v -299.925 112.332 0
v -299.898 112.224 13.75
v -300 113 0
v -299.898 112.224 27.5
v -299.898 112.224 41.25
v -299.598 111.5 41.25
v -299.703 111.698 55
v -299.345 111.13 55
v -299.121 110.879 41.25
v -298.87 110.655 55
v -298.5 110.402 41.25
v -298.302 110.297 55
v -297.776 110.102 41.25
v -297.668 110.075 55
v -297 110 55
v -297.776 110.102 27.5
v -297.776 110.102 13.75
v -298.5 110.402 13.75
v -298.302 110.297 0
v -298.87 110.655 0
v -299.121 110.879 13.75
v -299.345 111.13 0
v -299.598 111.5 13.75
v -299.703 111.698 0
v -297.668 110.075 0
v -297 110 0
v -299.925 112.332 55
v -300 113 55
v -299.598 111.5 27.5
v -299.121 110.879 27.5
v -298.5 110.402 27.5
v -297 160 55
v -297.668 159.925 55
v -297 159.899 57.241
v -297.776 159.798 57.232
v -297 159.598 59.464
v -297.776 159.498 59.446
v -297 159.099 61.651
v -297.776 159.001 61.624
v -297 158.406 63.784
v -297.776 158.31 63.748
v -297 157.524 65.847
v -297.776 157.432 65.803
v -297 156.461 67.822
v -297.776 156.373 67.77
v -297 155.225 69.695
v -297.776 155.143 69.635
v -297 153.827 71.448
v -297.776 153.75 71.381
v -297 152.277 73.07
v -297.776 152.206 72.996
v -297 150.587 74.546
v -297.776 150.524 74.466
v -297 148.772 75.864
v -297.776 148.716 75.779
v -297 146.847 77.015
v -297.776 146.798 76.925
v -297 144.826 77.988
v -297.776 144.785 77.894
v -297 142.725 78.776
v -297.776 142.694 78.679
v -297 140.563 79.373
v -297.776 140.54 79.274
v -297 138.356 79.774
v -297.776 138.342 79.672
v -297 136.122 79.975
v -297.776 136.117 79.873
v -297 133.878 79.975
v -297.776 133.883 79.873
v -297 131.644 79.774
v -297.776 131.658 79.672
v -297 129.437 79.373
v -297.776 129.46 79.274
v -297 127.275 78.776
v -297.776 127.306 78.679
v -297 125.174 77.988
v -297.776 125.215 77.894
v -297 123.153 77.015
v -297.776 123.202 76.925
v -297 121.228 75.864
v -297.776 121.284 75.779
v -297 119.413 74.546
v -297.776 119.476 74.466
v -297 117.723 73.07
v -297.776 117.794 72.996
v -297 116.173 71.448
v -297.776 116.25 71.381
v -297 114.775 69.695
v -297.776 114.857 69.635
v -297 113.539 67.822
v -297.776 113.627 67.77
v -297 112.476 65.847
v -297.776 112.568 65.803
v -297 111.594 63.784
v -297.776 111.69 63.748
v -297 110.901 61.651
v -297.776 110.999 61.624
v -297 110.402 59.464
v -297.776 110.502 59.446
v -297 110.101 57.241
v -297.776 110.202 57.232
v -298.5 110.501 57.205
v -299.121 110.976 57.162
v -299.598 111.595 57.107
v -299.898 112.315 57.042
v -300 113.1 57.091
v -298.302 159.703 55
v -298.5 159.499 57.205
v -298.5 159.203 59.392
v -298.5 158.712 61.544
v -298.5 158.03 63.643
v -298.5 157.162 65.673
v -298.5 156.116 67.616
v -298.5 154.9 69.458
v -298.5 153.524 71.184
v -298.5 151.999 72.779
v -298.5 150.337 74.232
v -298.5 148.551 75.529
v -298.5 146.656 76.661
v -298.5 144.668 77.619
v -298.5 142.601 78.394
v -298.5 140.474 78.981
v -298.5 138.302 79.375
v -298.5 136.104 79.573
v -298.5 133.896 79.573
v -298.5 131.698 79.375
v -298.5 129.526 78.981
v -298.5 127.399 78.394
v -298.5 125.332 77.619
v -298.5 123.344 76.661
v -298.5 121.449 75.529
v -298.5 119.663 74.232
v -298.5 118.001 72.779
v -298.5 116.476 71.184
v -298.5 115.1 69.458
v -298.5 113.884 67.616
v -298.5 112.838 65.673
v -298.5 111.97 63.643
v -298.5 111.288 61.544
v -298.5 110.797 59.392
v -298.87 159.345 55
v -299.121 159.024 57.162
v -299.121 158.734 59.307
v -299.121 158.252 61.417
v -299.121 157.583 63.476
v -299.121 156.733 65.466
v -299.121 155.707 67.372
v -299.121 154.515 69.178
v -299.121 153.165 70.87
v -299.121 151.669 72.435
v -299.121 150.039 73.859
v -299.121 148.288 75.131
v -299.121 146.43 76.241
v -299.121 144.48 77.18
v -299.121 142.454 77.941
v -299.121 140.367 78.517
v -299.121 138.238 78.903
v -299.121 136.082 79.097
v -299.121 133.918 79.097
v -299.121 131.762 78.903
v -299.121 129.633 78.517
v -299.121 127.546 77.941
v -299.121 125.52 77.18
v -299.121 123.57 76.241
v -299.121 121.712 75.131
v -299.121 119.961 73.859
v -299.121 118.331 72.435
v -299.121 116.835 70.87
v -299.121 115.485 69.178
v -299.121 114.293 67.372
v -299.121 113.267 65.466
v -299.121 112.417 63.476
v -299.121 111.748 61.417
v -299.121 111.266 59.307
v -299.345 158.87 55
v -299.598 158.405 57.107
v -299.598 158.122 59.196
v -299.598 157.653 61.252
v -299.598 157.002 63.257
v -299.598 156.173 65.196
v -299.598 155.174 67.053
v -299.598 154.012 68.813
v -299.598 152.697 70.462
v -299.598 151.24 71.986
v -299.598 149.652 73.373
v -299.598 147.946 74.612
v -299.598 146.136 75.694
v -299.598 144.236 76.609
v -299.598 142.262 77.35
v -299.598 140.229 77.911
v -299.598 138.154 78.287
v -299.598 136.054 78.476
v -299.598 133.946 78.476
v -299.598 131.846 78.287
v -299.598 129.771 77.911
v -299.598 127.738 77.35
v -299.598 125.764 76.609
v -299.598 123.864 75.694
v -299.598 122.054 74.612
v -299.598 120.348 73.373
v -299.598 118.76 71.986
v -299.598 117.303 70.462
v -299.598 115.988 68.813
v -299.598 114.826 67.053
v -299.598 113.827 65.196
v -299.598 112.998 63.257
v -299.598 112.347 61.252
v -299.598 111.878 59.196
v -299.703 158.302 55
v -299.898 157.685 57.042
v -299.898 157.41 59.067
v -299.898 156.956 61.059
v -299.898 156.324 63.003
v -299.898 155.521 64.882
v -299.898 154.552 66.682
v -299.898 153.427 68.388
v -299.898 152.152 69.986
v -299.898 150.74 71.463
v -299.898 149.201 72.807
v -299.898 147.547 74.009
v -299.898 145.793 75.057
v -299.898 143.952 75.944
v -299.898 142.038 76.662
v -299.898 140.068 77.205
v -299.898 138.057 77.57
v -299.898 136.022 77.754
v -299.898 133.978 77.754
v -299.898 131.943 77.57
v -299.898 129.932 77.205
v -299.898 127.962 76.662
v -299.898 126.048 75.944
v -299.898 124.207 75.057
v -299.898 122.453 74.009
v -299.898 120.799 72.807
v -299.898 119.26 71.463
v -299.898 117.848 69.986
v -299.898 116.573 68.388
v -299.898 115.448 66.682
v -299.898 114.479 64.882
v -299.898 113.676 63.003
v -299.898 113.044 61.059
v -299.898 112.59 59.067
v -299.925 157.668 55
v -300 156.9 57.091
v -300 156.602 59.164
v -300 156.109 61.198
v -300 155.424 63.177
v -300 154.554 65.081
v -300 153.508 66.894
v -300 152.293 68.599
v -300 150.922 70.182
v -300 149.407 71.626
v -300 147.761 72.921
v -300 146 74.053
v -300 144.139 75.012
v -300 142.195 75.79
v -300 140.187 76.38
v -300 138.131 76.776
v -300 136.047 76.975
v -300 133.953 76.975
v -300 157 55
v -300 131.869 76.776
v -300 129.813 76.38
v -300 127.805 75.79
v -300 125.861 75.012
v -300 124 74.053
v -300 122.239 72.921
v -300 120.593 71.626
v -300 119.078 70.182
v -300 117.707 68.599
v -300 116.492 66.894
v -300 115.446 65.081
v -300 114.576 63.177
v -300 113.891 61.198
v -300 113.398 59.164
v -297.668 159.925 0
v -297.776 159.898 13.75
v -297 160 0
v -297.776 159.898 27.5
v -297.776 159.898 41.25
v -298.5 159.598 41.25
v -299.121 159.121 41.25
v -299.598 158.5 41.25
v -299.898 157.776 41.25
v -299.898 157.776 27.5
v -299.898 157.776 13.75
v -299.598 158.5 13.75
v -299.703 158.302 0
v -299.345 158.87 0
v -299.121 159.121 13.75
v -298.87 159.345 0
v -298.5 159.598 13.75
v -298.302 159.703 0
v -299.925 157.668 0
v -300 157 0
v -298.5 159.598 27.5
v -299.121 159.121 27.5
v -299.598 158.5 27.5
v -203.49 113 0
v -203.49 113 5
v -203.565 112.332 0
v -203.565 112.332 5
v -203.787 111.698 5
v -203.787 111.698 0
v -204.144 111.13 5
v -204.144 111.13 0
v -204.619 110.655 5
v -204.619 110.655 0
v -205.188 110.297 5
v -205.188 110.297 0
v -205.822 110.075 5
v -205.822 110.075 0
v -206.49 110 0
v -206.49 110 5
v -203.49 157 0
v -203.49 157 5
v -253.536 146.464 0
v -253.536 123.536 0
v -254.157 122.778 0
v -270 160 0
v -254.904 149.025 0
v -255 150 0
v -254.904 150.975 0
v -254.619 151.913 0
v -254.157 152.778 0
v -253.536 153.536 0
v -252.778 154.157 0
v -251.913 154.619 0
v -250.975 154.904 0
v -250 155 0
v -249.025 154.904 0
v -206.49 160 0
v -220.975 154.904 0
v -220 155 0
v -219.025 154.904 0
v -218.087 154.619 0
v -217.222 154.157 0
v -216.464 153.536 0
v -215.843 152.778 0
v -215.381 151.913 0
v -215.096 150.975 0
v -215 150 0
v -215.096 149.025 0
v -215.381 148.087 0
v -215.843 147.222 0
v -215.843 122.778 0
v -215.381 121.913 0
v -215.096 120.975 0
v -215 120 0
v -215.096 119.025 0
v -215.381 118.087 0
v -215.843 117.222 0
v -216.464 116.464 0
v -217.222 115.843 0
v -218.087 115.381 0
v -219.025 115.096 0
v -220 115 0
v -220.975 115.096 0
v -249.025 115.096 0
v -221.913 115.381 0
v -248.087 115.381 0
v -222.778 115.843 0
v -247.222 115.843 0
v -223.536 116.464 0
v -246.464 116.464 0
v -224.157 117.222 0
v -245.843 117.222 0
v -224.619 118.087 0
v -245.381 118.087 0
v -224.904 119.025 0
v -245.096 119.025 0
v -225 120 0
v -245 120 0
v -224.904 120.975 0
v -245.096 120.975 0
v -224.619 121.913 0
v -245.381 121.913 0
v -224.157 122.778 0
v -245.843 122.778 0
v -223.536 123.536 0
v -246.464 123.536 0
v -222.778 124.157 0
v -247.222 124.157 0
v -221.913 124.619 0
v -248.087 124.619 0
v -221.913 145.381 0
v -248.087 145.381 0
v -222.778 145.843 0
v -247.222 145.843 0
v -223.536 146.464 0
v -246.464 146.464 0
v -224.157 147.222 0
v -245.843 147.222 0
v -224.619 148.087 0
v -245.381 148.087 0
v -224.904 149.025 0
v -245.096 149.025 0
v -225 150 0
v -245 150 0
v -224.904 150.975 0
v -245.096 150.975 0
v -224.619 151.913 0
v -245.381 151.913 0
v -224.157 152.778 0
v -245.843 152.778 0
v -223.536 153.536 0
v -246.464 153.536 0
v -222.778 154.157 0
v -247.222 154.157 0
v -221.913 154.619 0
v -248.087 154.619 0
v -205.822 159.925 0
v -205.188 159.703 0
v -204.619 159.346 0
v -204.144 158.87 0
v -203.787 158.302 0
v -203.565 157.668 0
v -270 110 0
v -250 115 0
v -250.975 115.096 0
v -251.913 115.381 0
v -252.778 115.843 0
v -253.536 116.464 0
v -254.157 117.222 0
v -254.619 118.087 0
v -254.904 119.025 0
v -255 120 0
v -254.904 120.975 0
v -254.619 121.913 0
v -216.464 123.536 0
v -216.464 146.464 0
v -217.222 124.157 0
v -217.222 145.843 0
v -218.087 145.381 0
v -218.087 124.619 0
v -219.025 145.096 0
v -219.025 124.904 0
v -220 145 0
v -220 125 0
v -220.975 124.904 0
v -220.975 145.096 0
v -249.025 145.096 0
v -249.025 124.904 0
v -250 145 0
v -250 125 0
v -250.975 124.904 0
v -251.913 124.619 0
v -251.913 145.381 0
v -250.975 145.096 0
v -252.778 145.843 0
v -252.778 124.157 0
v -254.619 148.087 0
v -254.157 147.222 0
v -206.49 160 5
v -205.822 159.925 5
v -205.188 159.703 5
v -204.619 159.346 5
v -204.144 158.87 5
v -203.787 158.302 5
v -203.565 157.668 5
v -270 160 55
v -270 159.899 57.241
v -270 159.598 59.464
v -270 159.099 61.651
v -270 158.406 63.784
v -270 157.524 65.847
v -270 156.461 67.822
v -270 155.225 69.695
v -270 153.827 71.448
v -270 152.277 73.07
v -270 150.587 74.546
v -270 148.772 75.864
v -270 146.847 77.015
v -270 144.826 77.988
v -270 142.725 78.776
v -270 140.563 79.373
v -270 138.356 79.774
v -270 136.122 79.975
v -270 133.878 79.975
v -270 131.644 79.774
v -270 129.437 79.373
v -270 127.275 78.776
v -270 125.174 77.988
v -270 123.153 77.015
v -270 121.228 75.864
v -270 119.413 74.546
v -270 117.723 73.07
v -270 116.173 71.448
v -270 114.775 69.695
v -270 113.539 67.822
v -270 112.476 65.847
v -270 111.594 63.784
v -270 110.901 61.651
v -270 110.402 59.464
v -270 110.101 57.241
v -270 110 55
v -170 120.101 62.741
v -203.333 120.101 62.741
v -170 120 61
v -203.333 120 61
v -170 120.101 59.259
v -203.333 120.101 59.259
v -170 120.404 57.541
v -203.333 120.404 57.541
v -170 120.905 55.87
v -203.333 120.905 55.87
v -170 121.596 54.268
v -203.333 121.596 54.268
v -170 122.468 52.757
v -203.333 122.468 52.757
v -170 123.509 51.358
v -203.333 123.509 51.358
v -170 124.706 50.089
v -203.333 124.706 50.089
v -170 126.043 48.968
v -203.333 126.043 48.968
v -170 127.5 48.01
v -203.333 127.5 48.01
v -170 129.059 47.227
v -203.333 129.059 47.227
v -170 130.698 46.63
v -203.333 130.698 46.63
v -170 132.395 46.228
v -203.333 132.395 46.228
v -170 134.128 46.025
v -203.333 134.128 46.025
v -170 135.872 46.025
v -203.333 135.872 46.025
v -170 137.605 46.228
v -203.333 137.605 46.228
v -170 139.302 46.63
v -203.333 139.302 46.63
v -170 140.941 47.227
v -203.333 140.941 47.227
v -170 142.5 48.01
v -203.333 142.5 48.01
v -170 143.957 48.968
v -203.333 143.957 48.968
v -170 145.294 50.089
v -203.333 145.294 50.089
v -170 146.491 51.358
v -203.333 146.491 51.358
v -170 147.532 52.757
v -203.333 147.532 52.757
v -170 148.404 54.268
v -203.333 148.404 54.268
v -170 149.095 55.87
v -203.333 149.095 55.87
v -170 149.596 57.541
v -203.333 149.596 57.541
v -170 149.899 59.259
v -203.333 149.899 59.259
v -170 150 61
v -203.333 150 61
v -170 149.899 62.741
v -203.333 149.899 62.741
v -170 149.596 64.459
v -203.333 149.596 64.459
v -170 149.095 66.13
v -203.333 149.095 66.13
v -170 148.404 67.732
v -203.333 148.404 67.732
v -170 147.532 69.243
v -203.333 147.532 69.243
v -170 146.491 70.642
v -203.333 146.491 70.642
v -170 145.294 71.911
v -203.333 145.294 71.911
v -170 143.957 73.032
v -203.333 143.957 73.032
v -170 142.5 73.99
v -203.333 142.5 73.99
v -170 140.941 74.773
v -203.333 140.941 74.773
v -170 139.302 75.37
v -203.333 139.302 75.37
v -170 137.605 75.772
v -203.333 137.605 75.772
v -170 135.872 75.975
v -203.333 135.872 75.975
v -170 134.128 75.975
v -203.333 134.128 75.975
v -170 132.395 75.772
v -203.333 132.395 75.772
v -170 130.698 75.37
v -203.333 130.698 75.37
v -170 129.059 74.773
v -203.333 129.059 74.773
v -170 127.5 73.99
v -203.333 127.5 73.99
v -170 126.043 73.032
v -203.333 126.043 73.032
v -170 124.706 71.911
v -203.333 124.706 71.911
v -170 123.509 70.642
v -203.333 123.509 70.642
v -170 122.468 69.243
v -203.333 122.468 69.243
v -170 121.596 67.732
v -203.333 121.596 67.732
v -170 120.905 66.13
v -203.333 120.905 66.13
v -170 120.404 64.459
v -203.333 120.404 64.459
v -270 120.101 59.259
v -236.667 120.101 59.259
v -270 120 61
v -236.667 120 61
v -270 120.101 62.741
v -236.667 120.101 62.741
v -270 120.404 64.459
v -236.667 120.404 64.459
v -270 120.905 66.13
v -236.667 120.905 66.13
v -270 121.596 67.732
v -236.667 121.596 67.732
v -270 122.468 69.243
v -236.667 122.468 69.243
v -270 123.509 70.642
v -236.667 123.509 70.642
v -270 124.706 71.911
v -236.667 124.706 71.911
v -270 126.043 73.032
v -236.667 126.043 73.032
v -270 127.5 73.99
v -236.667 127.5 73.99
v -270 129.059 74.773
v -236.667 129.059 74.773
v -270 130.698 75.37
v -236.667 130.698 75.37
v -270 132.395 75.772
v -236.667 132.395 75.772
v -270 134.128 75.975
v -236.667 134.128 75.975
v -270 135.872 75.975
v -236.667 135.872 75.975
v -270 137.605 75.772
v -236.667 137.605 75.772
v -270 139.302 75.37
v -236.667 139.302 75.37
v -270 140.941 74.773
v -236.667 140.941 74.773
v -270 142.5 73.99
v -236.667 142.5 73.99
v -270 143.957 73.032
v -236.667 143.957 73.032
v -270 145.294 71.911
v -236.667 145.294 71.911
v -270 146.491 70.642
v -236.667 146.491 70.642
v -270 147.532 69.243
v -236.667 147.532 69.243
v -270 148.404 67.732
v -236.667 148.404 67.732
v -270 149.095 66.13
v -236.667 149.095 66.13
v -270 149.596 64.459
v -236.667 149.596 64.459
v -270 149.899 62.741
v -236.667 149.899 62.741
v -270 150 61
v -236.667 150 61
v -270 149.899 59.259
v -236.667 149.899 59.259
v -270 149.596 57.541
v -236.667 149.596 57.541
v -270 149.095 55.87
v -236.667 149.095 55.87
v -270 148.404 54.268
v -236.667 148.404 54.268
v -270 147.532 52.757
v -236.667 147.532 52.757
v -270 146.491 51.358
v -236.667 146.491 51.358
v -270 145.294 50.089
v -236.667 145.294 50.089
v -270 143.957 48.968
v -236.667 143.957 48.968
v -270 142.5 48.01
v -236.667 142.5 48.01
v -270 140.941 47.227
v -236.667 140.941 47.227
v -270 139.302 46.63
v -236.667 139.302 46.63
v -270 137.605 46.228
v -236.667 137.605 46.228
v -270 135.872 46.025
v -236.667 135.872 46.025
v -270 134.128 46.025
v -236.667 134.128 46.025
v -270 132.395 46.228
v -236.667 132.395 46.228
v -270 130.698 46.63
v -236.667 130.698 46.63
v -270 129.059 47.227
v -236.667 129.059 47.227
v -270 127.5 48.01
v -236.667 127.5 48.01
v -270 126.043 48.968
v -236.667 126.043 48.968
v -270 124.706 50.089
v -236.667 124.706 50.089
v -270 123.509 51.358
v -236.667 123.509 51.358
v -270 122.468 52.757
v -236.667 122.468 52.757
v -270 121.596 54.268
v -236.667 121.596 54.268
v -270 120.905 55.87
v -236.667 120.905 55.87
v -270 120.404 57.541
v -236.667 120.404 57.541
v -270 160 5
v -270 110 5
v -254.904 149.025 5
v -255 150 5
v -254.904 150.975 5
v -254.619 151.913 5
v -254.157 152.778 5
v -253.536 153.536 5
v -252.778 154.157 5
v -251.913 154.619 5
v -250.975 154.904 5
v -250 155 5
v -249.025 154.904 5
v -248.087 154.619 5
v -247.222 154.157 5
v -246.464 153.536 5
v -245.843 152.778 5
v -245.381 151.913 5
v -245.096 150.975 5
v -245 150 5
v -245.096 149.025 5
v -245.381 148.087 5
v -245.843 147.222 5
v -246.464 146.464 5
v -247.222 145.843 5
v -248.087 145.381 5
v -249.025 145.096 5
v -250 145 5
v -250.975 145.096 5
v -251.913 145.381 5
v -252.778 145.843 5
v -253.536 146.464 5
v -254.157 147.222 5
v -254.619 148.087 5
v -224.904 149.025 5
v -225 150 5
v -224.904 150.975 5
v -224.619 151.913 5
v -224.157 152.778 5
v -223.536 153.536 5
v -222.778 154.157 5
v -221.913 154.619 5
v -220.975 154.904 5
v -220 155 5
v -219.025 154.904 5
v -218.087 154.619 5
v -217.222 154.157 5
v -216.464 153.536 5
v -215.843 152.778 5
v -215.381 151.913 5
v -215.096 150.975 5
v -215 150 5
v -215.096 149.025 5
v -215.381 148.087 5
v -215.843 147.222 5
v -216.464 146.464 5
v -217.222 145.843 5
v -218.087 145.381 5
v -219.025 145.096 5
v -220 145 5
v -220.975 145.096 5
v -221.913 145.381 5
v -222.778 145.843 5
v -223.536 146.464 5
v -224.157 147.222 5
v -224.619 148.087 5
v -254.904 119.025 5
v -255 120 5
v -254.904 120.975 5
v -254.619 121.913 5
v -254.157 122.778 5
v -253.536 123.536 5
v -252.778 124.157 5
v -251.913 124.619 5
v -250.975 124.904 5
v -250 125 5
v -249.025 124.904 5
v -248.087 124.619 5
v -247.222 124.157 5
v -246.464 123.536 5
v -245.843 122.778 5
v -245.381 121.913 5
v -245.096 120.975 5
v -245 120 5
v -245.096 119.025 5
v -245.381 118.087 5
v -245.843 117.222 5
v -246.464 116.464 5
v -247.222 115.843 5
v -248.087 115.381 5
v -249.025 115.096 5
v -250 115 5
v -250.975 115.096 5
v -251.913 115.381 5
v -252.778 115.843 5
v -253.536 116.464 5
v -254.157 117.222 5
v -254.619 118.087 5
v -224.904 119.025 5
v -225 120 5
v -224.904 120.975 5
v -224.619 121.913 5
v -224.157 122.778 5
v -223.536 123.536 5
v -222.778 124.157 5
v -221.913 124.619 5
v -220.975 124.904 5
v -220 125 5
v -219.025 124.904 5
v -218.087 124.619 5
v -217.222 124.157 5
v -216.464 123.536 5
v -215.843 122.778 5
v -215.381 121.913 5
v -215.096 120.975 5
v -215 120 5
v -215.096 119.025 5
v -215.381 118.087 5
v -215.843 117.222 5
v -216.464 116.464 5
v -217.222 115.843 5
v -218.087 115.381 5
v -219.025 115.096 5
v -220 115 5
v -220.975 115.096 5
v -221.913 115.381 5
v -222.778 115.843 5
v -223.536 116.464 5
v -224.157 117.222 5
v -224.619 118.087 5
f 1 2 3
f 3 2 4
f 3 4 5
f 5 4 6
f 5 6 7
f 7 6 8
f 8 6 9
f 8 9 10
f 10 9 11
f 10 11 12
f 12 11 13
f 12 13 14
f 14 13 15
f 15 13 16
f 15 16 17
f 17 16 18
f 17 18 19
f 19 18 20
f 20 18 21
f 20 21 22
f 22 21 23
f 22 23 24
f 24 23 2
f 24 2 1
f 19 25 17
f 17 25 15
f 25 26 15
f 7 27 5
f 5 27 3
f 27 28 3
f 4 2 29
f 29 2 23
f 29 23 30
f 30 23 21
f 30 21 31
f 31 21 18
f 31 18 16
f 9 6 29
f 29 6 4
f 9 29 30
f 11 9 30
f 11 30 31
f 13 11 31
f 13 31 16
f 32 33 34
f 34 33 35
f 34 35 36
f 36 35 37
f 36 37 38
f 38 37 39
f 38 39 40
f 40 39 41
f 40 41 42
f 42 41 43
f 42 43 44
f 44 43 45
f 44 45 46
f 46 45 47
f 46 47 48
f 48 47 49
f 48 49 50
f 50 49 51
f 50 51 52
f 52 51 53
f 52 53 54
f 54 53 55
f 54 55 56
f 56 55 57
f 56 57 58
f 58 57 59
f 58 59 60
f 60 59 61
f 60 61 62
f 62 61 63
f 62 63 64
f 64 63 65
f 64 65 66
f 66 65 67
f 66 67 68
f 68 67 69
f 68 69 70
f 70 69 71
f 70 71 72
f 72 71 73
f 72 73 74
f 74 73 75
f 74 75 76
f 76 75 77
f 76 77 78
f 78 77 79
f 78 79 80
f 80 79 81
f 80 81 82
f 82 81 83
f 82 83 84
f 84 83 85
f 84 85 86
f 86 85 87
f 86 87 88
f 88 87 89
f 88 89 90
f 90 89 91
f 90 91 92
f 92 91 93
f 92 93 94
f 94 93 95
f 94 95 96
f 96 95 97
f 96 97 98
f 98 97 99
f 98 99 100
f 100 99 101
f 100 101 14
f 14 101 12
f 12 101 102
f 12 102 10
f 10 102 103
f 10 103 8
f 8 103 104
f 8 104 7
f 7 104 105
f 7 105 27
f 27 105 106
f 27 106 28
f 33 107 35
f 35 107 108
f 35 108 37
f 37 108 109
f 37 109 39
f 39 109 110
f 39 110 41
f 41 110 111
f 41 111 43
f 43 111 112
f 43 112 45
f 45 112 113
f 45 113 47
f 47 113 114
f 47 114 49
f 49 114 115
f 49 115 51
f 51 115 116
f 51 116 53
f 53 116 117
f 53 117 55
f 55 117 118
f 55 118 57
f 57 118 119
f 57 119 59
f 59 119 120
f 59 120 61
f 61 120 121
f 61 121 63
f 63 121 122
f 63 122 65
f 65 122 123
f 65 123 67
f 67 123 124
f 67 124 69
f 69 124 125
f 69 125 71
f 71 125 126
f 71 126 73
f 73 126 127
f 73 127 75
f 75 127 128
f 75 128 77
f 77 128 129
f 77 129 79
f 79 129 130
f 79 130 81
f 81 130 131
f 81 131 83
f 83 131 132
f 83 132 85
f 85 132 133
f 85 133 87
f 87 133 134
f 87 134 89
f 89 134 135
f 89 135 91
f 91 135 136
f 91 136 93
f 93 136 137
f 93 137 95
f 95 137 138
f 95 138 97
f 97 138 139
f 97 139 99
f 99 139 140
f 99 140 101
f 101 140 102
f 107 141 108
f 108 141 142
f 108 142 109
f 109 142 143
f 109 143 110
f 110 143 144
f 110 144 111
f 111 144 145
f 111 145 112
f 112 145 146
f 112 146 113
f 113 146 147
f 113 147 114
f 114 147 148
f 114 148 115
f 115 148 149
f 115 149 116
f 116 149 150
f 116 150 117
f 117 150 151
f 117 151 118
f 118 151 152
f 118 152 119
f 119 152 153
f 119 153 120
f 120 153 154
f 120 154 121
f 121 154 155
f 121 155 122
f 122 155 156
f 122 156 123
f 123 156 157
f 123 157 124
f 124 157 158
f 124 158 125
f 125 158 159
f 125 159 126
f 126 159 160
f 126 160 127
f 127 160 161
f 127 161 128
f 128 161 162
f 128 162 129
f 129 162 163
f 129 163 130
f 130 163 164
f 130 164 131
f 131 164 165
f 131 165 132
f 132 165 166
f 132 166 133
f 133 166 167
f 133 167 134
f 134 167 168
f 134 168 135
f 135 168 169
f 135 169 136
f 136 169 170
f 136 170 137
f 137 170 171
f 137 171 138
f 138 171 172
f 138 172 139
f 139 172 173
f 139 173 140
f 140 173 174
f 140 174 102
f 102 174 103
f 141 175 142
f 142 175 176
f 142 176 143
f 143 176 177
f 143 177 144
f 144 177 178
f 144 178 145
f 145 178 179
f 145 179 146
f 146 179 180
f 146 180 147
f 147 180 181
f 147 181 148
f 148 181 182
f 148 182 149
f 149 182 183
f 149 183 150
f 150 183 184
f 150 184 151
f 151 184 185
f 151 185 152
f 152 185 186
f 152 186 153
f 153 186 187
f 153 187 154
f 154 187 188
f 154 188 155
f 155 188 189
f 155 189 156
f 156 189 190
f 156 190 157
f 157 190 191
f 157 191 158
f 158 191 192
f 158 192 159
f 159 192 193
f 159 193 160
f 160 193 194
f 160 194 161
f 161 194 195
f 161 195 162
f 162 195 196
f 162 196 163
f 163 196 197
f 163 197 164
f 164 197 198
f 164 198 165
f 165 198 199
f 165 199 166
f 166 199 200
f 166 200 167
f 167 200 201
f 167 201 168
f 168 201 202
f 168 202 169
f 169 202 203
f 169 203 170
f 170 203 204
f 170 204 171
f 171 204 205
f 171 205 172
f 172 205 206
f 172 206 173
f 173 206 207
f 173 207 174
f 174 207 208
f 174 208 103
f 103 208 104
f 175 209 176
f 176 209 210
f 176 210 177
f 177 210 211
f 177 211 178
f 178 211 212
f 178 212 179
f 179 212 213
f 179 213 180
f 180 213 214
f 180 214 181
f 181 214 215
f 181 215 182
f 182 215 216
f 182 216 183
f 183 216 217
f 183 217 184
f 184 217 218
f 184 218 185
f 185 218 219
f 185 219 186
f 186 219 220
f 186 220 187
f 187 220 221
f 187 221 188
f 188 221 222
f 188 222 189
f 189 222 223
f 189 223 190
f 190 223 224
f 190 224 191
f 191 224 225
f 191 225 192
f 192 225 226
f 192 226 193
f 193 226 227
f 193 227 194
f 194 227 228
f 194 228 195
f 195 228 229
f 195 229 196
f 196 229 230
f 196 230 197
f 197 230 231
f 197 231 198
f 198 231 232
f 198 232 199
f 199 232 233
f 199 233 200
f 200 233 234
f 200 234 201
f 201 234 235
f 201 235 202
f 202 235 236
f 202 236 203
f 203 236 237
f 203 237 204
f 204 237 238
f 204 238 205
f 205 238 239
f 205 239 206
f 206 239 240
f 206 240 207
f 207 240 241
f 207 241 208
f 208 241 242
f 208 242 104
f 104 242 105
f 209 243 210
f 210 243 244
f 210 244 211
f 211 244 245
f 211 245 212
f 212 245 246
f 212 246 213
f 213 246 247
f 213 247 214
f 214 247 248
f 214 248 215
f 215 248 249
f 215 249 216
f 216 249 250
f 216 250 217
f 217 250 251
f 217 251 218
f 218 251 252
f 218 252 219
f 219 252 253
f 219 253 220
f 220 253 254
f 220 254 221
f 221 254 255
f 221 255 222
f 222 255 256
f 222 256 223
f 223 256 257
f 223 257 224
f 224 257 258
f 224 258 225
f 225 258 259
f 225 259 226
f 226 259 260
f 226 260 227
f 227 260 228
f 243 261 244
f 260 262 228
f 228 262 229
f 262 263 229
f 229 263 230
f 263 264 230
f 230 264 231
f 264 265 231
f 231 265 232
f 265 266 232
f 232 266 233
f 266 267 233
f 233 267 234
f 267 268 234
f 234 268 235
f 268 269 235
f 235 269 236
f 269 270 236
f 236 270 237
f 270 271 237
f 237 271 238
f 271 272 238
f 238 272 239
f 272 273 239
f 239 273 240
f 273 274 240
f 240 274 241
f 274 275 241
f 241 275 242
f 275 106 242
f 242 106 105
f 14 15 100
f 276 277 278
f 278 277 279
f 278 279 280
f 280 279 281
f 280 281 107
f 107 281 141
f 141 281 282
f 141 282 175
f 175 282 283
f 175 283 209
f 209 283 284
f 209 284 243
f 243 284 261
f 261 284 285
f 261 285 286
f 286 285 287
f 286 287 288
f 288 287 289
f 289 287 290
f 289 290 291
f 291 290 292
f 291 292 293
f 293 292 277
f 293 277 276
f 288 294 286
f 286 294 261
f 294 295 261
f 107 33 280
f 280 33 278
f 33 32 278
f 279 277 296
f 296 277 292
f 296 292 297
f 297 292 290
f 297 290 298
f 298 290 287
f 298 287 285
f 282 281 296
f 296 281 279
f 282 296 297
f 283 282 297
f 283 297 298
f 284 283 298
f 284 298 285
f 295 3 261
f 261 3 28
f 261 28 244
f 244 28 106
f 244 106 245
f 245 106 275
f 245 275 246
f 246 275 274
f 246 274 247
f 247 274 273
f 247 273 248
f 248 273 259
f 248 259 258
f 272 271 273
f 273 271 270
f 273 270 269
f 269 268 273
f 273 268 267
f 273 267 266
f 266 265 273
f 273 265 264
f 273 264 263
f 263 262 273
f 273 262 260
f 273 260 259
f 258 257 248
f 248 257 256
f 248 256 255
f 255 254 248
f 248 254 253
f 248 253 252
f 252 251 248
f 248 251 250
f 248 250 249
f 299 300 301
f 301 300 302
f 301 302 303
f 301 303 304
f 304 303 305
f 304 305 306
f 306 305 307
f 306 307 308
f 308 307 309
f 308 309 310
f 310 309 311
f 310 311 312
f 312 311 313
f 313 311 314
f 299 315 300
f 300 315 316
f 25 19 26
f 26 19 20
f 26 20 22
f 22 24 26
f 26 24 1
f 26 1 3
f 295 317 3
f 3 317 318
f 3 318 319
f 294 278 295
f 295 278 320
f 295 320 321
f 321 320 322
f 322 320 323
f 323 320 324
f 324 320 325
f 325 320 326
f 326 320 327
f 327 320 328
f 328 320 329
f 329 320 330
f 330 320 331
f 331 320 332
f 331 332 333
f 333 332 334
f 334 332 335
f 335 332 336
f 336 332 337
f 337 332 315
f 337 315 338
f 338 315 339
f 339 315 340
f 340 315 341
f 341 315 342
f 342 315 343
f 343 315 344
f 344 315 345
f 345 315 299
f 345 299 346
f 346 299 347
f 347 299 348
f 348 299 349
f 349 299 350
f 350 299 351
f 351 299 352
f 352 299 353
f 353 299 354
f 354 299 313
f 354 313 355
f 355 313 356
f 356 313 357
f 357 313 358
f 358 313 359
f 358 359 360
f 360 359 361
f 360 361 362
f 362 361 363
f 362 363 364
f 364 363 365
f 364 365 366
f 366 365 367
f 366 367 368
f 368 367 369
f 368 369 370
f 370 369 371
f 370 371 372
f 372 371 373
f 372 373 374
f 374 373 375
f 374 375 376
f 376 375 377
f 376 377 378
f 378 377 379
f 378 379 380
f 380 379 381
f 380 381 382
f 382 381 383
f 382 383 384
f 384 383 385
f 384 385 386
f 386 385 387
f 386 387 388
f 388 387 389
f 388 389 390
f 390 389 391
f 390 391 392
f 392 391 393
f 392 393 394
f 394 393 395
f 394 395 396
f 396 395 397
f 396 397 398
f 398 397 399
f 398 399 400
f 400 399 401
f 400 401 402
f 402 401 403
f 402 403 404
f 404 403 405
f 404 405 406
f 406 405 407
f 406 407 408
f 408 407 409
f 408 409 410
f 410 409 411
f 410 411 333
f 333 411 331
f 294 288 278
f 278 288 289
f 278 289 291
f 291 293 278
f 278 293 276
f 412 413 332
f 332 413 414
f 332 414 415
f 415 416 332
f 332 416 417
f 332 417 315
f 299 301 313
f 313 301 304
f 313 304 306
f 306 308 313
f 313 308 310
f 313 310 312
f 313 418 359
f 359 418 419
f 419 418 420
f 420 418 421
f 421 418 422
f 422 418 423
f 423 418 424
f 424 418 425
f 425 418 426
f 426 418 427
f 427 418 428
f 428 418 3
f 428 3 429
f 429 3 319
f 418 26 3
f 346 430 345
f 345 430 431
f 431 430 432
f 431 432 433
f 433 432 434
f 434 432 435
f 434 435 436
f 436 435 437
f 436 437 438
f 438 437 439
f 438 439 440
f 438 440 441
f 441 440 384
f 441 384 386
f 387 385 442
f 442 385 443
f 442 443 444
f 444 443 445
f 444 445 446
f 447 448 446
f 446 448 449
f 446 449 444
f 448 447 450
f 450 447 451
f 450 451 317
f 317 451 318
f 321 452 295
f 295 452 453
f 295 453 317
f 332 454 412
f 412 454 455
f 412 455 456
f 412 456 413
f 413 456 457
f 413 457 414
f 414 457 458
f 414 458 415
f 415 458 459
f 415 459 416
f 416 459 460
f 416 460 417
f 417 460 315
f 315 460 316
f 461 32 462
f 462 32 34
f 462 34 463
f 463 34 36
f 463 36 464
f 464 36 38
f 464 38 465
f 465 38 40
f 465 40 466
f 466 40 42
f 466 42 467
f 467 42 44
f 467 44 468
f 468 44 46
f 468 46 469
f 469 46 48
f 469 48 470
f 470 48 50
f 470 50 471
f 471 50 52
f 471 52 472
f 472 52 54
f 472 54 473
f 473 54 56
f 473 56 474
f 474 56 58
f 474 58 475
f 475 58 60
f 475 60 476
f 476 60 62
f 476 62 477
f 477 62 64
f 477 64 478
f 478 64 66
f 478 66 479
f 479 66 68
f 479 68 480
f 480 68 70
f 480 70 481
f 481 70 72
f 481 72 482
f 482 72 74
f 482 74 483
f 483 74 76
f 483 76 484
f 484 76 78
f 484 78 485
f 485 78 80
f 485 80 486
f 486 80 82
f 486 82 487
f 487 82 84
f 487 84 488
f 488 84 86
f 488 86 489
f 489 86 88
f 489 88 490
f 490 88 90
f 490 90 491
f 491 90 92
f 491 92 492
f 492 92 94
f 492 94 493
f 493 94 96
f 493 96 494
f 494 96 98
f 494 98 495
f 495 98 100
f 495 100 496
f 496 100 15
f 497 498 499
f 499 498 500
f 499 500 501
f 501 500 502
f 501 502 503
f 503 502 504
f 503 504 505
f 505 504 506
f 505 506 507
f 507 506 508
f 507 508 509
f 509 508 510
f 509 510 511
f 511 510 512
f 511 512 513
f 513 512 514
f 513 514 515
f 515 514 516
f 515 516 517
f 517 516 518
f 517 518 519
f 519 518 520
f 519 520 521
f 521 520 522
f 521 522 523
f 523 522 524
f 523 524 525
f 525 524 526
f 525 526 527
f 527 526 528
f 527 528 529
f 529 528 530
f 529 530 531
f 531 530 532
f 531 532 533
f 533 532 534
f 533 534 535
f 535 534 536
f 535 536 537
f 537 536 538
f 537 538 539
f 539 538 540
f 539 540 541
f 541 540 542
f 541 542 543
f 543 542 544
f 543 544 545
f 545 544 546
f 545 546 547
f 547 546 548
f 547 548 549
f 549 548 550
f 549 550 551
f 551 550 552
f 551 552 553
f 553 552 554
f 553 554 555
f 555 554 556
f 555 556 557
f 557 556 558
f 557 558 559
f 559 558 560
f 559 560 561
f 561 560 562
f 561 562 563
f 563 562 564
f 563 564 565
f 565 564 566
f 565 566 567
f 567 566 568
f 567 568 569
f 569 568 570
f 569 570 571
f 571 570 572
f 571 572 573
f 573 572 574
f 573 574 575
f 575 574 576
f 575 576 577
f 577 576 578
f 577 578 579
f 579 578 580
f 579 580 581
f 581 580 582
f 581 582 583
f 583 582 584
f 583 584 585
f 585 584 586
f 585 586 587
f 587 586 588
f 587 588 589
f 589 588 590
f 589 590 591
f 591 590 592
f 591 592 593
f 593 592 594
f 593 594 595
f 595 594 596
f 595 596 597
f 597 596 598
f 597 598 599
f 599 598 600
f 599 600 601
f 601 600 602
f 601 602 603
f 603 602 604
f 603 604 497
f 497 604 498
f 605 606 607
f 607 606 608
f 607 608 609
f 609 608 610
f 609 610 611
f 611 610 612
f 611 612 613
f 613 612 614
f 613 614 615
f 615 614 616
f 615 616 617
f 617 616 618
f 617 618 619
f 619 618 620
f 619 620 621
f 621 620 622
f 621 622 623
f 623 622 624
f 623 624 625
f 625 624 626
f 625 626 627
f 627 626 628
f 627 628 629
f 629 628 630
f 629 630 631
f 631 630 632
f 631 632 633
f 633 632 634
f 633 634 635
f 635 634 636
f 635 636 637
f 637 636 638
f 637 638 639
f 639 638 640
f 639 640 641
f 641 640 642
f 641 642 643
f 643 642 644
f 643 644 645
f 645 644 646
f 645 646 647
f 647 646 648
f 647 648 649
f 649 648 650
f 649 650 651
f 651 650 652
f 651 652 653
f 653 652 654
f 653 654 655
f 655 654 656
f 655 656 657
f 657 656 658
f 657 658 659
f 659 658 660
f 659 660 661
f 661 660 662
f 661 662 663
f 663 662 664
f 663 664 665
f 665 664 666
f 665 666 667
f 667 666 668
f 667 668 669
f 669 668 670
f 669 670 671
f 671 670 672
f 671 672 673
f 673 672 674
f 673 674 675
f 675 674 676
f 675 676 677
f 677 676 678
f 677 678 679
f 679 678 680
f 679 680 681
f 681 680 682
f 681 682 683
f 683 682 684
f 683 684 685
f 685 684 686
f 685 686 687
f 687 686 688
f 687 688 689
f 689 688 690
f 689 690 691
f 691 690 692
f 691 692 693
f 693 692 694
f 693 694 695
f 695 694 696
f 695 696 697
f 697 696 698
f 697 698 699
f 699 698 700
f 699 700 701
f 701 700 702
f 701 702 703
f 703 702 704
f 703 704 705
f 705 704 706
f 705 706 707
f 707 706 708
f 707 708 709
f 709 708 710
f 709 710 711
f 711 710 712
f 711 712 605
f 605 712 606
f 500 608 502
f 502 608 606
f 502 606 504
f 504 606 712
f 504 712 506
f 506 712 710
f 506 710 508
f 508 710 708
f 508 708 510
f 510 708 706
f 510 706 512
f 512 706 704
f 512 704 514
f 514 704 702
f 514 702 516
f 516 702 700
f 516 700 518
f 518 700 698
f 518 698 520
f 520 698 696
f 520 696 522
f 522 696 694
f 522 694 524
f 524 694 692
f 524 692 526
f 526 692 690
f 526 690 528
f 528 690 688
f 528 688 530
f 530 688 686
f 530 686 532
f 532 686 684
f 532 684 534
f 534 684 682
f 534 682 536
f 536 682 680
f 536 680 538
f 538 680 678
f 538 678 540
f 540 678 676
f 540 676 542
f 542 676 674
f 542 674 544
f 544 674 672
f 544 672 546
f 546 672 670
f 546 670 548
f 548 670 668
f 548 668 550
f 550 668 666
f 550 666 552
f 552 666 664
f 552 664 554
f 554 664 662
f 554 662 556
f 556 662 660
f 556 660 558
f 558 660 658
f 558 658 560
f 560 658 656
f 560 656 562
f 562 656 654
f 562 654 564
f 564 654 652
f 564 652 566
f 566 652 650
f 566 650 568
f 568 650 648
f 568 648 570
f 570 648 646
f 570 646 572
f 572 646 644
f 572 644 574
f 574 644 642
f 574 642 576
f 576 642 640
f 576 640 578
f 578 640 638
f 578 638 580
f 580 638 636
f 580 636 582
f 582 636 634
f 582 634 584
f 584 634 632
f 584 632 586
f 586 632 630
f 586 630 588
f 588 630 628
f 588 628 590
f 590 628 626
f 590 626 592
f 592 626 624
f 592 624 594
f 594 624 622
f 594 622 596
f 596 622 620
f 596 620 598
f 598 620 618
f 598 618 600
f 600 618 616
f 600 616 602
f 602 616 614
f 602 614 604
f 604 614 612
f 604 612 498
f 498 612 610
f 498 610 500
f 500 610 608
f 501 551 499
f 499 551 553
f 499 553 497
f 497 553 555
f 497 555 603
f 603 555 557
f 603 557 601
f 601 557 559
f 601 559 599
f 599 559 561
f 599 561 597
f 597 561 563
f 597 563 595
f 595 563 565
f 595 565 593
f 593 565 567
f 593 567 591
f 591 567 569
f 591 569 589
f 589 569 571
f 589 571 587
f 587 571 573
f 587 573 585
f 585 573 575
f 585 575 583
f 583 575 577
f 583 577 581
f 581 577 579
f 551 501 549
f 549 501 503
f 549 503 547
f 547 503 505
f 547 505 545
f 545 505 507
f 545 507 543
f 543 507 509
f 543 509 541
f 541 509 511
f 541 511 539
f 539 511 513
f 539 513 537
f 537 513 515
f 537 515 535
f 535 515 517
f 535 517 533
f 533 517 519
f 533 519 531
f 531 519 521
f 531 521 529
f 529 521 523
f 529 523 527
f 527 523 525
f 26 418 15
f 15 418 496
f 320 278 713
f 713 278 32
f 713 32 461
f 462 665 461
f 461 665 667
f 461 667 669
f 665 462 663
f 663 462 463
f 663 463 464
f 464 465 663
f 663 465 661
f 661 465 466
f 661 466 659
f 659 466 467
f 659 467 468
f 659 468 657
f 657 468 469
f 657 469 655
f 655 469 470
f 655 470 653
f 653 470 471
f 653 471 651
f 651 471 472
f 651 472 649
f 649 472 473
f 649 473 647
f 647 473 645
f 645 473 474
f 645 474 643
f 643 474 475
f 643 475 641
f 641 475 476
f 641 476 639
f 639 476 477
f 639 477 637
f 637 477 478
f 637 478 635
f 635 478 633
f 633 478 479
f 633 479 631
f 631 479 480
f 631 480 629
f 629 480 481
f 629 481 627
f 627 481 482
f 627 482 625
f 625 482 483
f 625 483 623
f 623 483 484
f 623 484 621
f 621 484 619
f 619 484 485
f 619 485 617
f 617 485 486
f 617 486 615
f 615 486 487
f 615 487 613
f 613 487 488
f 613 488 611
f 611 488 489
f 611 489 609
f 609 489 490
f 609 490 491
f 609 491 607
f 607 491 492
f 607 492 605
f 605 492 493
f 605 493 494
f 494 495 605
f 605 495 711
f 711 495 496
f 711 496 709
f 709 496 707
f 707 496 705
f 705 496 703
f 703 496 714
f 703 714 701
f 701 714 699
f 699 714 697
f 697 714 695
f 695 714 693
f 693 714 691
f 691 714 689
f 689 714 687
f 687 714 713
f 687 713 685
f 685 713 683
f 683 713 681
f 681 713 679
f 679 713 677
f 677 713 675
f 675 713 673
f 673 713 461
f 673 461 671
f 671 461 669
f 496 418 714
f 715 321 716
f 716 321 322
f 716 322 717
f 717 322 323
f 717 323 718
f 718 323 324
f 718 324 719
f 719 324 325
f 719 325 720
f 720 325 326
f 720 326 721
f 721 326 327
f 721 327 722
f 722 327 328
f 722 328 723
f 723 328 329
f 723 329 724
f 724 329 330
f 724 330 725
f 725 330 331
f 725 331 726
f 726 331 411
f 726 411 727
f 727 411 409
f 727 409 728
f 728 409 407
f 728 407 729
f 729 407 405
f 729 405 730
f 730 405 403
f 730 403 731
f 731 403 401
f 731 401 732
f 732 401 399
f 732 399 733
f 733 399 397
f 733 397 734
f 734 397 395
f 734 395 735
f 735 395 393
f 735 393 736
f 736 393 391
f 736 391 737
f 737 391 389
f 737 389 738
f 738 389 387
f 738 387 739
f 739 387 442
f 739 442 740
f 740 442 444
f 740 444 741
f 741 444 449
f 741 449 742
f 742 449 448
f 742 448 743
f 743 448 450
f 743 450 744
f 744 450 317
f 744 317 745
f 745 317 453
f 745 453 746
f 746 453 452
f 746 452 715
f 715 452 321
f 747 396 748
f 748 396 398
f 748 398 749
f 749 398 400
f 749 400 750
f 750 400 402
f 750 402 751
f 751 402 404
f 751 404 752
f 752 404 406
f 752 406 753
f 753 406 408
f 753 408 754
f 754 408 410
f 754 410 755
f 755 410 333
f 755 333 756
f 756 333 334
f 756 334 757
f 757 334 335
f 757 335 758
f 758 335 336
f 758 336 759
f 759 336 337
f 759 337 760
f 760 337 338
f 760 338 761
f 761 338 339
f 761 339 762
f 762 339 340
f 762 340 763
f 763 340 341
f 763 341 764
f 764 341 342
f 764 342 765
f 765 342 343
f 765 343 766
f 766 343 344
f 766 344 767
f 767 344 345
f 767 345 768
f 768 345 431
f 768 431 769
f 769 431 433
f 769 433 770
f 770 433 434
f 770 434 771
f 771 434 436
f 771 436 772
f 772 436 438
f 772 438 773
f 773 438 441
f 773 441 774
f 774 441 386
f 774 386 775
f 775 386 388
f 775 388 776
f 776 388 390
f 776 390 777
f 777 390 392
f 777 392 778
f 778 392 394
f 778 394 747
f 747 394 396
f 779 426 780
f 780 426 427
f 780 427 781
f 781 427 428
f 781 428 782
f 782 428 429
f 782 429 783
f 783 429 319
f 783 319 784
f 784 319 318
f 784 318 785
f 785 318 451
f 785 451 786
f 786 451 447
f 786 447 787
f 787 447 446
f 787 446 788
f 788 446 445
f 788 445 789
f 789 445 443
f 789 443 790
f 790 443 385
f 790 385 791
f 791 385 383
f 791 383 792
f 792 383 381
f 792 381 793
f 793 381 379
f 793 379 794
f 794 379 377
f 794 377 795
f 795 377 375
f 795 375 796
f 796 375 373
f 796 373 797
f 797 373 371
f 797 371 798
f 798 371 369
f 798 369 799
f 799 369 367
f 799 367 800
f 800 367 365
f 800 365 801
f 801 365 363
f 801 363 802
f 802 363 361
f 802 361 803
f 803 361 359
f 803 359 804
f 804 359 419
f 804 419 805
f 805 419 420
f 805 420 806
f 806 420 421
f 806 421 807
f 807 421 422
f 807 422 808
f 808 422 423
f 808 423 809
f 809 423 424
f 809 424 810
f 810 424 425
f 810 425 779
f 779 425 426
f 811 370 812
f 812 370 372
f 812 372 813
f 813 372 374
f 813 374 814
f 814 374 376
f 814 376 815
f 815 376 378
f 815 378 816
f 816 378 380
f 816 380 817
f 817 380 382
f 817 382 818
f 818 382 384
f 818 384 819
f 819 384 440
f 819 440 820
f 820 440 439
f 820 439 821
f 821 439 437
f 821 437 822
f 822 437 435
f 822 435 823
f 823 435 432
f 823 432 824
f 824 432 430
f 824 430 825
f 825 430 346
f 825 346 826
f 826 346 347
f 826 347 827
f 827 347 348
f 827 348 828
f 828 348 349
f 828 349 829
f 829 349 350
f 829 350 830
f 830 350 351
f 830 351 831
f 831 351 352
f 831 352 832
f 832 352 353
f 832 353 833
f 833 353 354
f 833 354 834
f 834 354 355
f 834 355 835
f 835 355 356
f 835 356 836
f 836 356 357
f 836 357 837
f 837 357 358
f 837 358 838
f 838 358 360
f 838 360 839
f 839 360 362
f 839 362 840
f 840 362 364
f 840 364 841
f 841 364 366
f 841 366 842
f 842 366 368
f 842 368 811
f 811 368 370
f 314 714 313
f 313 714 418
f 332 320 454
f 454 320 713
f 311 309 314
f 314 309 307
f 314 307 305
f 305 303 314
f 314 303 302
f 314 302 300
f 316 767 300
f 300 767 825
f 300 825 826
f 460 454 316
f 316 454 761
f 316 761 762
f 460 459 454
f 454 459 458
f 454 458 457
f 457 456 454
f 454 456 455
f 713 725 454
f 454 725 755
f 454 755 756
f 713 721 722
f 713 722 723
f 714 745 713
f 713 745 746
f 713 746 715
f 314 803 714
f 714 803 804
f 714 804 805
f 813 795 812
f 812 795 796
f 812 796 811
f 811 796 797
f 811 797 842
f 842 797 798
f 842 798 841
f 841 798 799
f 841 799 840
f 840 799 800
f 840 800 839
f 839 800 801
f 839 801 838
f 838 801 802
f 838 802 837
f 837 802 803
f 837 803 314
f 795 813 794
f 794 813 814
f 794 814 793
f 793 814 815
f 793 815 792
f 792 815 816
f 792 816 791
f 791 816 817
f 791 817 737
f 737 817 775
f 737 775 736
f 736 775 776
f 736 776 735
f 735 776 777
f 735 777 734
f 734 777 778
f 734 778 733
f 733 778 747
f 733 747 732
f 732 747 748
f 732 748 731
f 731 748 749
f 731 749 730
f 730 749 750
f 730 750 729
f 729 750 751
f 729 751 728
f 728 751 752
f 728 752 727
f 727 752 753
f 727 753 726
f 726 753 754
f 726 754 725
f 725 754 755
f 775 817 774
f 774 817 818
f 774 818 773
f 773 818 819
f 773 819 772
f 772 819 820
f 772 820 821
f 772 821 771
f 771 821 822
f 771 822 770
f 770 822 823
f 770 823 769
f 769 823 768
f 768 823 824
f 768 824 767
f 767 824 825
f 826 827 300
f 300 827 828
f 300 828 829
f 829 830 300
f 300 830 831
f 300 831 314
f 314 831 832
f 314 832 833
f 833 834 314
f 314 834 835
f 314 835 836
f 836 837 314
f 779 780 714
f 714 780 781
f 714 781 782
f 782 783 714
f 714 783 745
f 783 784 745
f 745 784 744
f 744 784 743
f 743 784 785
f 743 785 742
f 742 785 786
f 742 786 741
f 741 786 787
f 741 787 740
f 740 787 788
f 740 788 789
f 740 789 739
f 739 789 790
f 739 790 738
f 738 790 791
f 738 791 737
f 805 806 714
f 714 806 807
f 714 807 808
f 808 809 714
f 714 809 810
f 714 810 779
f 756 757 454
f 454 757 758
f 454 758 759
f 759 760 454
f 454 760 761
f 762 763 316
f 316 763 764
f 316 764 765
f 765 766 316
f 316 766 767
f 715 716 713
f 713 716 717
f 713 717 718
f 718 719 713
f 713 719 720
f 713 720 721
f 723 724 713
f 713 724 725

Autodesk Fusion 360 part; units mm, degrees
sketch "Sketch3" plane through (0, 0, 0) normal (0, 0, 1) x (1, 0, 0)
  circle A0 centre (-250, 150) radius 5
  circle A1 centre (-220, 150) radius 5
  circle A2 centre (-250, 120) radius 5
  circle A3 centre (-220, 120) radius 5
  line L0 (-270, 160) -> (-203.4896, 160)
  line L1 (-203.4896, 160) -> (-203.4896, 110)
  line L2 (-203.4896, 110) -> (-270, 110)
  line L3 (-270, 110) -> (-270, 160)
  line L4 (-270, 160) -> (-300, 160)
  line L5 (-300, 160) -> (-300, 110)
  line L6 (-300, 110) -> (-270, 110)
  line L7 (-270, 110) -> (-270, 160)
  dimension "d13" = 10
  dimension "d14" = 10
  dimension "d15" = 10
  dimension "d16" = 10
extrude "Extrude1" add sketch "Sketch3" along normal blind 5 contours L0 L1 L2 L3 L7
extrude "Extrude2" add sketch "Sketch3" along normal blind 80 contours L3 L4 L5 L6 L7
sketch "Sketch6" plane through (-270, 0, 0) normal (1, 0, 0) x (0, 1, 0)
  line L0 (110, 5) -> (160, 5)
  line L1 (160, 5) -> (160, 80)
  line L2 (160, 80) -> (110, 80)
  line L3 (110, 80) -> (110, 0)
  circle A0 centre (135, 61) radius 15
  line L4 (110, 0) -> (110, 0)
  line L5 (110, 0) -> (110, 5)
  dimension "d6" = 30
extrude "Extrude3" add sketch "Sketch6" along normal blind 100 contours A0
fillet "Fillet1" radius 25 2 edges at (-285, 160, 80) (-285, 110, 80)
fillet "Fillet3" radius 3 5 edges at (-203.4896, 160, 2.5) (-203.4896, 110, 2.5) (-300, 110, 27.5) (-300, 135, 80) (-300, 160, 27.5)
